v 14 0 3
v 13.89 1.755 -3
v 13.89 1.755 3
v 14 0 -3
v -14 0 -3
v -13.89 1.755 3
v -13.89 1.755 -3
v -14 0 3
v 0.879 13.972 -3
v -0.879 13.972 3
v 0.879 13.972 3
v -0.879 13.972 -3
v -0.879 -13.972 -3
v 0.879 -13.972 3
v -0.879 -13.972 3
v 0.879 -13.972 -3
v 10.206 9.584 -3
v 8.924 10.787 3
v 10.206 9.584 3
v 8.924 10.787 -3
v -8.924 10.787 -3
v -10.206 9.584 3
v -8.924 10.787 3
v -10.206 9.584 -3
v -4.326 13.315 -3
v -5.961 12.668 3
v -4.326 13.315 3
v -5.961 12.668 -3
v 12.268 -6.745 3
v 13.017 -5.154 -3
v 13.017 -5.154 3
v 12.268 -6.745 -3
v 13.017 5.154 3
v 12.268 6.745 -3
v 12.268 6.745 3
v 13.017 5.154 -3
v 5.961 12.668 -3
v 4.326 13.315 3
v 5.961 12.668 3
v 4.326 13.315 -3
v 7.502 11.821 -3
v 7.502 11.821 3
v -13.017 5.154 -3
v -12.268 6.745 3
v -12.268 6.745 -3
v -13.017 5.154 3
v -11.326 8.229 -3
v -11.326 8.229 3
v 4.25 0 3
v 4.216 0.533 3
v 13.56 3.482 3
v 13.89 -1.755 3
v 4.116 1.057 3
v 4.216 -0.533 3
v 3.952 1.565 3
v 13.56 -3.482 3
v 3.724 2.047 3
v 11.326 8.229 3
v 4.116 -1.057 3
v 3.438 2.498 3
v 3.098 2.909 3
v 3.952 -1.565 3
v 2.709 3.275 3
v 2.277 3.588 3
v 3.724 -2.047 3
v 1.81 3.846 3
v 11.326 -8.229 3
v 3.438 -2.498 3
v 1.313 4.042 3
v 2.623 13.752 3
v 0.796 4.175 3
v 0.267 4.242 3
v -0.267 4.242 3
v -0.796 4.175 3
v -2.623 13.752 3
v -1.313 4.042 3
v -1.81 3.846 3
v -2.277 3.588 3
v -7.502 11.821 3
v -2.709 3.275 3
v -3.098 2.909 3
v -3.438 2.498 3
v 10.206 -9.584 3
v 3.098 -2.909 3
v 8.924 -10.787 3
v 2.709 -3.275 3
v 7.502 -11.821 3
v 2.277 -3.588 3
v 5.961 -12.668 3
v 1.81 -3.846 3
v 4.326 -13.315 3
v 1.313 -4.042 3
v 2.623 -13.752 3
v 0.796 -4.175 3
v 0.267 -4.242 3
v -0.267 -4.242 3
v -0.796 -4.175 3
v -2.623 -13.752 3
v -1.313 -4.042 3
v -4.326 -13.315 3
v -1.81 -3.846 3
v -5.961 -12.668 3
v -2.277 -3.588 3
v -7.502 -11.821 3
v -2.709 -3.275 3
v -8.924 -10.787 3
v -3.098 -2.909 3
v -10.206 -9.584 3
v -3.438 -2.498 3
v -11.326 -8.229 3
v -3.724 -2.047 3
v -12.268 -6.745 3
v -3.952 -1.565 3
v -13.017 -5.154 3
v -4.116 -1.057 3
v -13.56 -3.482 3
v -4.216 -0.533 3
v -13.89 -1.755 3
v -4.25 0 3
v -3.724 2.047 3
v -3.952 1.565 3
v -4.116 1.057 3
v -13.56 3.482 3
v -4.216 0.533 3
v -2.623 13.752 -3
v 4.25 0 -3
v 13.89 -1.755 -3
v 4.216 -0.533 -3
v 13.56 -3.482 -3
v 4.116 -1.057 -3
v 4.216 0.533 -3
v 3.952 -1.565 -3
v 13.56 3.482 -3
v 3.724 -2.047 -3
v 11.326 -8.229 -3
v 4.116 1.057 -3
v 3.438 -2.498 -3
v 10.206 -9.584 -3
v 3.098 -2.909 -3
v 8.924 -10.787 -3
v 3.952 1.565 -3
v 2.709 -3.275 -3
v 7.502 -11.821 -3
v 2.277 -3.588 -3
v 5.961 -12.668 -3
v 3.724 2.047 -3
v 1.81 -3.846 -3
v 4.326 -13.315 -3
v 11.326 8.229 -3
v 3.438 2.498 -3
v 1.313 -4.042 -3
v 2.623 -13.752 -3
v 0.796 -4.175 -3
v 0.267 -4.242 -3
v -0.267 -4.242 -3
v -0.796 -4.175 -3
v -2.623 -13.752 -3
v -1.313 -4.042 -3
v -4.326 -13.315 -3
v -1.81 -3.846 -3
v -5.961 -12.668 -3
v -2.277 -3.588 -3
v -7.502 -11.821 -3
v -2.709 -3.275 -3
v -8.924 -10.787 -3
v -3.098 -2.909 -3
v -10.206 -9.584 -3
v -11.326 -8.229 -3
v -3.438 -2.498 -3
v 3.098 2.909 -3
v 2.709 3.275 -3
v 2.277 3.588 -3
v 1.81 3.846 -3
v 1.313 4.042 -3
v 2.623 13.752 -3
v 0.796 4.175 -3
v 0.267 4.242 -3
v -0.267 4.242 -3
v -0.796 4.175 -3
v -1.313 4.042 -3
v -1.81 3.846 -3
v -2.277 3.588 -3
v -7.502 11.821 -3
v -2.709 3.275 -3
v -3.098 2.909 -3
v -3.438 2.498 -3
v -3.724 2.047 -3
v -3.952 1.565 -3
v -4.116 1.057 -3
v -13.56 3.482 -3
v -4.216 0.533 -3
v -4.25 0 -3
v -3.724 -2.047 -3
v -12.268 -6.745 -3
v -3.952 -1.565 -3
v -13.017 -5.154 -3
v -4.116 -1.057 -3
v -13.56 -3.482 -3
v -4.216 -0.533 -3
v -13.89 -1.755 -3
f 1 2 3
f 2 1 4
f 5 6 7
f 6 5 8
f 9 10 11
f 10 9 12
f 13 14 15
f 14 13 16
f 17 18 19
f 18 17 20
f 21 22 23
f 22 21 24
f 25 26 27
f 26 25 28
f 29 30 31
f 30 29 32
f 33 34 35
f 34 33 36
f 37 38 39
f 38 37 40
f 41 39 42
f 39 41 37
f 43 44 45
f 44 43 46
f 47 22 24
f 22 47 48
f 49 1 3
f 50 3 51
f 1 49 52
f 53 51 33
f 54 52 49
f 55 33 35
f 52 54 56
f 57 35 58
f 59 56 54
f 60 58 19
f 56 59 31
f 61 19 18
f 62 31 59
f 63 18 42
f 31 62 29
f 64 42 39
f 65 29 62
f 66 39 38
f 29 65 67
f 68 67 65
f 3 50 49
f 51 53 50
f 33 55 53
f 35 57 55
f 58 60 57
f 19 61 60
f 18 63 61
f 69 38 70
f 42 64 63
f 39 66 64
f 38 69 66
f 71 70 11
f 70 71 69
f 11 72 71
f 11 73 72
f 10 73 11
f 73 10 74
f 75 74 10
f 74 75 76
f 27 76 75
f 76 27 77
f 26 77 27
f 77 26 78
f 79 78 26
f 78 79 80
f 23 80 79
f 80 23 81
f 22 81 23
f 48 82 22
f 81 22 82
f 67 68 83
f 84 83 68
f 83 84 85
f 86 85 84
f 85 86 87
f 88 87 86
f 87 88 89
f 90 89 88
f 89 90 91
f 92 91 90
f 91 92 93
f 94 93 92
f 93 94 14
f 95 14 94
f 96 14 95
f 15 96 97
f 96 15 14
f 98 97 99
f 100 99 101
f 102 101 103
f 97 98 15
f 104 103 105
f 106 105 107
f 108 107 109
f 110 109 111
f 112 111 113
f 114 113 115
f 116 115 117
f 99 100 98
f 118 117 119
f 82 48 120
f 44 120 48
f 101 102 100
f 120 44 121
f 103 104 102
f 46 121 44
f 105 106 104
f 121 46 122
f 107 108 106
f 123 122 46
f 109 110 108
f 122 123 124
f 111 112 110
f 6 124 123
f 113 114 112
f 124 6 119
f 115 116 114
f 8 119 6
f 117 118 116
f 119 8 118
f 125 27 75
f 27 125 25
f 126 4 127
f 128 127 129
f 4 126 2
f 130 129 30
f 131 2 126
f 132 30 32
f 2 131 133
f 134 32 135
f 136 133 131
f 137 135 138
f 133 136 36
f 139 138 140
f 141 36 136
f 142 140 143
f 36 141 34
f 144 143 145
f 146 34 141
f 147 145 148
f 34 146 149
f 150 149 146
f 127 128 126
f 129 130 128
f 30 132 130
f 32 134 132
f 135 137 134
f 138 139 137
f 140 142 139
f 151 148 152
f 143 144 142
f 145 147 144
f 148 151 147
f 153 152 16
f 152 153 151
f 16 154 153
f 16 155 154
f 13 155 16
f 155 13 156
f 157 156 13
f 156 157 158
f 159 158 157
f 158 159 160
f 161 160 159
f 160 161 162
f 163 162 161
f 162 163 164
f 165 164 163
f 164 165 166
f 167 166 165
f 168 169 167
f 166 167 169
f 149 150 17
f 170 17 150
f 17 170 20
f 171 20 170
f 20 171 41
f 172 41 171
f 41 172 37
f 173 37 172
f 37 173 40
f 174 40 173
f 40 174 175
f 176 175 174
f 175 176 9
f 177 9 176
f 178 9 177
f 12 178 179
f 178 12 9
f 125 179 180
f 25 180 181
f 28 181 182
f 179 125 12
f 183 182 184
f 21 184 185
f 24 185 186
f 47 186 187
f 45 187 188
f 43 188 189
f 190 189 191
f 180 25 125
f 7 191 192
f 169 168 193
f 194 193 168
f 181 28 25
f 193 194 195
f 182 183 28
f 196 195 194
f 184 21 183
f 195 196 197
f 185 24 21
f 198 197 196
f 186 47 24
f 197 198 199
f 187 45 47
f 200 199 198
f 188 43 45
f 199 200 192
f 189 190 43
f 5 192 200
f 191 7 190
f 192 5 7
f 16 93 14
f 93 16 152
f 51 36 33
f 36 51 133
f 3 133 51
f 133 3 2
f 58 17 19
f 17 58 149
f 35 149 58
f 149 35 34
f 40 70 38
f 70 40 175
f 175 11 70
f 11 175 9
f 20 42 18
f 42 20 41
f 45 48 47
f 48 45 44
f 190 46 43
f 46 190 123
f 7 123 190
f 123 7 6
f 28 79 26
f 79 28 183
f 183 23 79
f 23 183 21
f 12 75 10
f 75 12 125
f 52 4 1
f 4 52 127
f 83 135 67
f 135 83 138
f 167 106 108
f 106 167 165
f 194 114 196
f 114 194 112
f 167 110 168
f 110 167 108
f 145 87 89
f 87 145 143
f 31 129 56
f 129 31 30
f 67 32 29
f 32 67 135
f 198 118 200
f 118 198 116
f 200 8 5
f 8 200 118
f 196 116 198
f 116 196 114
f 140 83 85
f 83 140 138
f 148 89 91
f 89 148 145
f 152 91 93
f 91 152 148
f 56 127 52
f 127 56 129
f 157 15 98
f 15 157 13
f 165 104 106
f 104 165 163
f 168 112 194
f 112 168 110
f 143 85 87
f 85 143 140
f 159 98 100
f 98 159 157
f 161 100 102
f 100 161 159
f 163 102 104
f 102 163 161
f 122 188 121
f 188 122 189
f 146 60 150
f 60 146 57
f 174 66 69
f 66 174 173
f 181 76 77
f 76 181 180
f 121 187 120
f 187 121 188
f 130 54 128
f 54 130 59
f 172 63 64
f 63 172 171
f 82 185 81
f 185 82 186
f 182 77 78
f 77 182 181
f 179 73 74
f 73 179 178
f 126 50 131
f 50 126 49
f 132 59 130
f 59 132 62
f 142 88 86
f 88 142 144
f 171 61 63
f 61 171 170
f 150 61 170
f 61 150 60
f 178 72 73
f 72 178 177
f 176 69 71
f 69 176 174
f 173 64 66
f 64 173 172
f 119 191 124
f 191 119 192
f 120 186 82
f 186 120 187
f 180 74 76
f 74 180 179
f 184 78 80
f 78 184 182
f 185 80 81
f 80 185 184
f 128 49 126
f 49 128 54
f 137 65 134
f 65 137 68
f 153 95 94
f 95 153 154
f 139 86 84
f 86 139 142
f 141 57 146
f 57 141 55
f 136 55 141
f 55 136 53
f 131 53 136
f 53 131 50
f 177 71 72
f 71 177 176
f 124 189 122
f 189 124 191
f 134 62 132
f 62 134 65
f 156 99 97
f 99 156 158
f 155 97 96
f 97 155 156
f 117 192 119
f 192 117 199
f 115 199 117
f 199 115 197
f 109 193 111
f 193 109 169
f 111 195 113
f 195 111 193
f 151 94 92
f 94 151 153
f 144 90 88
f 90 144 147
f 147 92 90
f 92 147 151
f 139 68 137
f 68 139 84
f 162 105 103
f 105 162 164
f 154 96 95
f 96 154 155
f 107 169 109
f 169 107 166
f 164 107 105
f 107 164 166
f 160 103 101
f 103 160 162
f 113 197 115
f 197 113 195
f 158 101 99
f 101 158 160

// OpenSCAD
$fn = 50;


difference() {
	union() {
		translate(v = [0, 0, -3.0000000000]) {
			cylinder(h = 6, r = 14.0000000000);
		}
	}
	union() {
		translate(v = [0, 0, -100.0000000000]) {
			cylinder(h = 200, r = 4.2500000000);
		}
	}
}
